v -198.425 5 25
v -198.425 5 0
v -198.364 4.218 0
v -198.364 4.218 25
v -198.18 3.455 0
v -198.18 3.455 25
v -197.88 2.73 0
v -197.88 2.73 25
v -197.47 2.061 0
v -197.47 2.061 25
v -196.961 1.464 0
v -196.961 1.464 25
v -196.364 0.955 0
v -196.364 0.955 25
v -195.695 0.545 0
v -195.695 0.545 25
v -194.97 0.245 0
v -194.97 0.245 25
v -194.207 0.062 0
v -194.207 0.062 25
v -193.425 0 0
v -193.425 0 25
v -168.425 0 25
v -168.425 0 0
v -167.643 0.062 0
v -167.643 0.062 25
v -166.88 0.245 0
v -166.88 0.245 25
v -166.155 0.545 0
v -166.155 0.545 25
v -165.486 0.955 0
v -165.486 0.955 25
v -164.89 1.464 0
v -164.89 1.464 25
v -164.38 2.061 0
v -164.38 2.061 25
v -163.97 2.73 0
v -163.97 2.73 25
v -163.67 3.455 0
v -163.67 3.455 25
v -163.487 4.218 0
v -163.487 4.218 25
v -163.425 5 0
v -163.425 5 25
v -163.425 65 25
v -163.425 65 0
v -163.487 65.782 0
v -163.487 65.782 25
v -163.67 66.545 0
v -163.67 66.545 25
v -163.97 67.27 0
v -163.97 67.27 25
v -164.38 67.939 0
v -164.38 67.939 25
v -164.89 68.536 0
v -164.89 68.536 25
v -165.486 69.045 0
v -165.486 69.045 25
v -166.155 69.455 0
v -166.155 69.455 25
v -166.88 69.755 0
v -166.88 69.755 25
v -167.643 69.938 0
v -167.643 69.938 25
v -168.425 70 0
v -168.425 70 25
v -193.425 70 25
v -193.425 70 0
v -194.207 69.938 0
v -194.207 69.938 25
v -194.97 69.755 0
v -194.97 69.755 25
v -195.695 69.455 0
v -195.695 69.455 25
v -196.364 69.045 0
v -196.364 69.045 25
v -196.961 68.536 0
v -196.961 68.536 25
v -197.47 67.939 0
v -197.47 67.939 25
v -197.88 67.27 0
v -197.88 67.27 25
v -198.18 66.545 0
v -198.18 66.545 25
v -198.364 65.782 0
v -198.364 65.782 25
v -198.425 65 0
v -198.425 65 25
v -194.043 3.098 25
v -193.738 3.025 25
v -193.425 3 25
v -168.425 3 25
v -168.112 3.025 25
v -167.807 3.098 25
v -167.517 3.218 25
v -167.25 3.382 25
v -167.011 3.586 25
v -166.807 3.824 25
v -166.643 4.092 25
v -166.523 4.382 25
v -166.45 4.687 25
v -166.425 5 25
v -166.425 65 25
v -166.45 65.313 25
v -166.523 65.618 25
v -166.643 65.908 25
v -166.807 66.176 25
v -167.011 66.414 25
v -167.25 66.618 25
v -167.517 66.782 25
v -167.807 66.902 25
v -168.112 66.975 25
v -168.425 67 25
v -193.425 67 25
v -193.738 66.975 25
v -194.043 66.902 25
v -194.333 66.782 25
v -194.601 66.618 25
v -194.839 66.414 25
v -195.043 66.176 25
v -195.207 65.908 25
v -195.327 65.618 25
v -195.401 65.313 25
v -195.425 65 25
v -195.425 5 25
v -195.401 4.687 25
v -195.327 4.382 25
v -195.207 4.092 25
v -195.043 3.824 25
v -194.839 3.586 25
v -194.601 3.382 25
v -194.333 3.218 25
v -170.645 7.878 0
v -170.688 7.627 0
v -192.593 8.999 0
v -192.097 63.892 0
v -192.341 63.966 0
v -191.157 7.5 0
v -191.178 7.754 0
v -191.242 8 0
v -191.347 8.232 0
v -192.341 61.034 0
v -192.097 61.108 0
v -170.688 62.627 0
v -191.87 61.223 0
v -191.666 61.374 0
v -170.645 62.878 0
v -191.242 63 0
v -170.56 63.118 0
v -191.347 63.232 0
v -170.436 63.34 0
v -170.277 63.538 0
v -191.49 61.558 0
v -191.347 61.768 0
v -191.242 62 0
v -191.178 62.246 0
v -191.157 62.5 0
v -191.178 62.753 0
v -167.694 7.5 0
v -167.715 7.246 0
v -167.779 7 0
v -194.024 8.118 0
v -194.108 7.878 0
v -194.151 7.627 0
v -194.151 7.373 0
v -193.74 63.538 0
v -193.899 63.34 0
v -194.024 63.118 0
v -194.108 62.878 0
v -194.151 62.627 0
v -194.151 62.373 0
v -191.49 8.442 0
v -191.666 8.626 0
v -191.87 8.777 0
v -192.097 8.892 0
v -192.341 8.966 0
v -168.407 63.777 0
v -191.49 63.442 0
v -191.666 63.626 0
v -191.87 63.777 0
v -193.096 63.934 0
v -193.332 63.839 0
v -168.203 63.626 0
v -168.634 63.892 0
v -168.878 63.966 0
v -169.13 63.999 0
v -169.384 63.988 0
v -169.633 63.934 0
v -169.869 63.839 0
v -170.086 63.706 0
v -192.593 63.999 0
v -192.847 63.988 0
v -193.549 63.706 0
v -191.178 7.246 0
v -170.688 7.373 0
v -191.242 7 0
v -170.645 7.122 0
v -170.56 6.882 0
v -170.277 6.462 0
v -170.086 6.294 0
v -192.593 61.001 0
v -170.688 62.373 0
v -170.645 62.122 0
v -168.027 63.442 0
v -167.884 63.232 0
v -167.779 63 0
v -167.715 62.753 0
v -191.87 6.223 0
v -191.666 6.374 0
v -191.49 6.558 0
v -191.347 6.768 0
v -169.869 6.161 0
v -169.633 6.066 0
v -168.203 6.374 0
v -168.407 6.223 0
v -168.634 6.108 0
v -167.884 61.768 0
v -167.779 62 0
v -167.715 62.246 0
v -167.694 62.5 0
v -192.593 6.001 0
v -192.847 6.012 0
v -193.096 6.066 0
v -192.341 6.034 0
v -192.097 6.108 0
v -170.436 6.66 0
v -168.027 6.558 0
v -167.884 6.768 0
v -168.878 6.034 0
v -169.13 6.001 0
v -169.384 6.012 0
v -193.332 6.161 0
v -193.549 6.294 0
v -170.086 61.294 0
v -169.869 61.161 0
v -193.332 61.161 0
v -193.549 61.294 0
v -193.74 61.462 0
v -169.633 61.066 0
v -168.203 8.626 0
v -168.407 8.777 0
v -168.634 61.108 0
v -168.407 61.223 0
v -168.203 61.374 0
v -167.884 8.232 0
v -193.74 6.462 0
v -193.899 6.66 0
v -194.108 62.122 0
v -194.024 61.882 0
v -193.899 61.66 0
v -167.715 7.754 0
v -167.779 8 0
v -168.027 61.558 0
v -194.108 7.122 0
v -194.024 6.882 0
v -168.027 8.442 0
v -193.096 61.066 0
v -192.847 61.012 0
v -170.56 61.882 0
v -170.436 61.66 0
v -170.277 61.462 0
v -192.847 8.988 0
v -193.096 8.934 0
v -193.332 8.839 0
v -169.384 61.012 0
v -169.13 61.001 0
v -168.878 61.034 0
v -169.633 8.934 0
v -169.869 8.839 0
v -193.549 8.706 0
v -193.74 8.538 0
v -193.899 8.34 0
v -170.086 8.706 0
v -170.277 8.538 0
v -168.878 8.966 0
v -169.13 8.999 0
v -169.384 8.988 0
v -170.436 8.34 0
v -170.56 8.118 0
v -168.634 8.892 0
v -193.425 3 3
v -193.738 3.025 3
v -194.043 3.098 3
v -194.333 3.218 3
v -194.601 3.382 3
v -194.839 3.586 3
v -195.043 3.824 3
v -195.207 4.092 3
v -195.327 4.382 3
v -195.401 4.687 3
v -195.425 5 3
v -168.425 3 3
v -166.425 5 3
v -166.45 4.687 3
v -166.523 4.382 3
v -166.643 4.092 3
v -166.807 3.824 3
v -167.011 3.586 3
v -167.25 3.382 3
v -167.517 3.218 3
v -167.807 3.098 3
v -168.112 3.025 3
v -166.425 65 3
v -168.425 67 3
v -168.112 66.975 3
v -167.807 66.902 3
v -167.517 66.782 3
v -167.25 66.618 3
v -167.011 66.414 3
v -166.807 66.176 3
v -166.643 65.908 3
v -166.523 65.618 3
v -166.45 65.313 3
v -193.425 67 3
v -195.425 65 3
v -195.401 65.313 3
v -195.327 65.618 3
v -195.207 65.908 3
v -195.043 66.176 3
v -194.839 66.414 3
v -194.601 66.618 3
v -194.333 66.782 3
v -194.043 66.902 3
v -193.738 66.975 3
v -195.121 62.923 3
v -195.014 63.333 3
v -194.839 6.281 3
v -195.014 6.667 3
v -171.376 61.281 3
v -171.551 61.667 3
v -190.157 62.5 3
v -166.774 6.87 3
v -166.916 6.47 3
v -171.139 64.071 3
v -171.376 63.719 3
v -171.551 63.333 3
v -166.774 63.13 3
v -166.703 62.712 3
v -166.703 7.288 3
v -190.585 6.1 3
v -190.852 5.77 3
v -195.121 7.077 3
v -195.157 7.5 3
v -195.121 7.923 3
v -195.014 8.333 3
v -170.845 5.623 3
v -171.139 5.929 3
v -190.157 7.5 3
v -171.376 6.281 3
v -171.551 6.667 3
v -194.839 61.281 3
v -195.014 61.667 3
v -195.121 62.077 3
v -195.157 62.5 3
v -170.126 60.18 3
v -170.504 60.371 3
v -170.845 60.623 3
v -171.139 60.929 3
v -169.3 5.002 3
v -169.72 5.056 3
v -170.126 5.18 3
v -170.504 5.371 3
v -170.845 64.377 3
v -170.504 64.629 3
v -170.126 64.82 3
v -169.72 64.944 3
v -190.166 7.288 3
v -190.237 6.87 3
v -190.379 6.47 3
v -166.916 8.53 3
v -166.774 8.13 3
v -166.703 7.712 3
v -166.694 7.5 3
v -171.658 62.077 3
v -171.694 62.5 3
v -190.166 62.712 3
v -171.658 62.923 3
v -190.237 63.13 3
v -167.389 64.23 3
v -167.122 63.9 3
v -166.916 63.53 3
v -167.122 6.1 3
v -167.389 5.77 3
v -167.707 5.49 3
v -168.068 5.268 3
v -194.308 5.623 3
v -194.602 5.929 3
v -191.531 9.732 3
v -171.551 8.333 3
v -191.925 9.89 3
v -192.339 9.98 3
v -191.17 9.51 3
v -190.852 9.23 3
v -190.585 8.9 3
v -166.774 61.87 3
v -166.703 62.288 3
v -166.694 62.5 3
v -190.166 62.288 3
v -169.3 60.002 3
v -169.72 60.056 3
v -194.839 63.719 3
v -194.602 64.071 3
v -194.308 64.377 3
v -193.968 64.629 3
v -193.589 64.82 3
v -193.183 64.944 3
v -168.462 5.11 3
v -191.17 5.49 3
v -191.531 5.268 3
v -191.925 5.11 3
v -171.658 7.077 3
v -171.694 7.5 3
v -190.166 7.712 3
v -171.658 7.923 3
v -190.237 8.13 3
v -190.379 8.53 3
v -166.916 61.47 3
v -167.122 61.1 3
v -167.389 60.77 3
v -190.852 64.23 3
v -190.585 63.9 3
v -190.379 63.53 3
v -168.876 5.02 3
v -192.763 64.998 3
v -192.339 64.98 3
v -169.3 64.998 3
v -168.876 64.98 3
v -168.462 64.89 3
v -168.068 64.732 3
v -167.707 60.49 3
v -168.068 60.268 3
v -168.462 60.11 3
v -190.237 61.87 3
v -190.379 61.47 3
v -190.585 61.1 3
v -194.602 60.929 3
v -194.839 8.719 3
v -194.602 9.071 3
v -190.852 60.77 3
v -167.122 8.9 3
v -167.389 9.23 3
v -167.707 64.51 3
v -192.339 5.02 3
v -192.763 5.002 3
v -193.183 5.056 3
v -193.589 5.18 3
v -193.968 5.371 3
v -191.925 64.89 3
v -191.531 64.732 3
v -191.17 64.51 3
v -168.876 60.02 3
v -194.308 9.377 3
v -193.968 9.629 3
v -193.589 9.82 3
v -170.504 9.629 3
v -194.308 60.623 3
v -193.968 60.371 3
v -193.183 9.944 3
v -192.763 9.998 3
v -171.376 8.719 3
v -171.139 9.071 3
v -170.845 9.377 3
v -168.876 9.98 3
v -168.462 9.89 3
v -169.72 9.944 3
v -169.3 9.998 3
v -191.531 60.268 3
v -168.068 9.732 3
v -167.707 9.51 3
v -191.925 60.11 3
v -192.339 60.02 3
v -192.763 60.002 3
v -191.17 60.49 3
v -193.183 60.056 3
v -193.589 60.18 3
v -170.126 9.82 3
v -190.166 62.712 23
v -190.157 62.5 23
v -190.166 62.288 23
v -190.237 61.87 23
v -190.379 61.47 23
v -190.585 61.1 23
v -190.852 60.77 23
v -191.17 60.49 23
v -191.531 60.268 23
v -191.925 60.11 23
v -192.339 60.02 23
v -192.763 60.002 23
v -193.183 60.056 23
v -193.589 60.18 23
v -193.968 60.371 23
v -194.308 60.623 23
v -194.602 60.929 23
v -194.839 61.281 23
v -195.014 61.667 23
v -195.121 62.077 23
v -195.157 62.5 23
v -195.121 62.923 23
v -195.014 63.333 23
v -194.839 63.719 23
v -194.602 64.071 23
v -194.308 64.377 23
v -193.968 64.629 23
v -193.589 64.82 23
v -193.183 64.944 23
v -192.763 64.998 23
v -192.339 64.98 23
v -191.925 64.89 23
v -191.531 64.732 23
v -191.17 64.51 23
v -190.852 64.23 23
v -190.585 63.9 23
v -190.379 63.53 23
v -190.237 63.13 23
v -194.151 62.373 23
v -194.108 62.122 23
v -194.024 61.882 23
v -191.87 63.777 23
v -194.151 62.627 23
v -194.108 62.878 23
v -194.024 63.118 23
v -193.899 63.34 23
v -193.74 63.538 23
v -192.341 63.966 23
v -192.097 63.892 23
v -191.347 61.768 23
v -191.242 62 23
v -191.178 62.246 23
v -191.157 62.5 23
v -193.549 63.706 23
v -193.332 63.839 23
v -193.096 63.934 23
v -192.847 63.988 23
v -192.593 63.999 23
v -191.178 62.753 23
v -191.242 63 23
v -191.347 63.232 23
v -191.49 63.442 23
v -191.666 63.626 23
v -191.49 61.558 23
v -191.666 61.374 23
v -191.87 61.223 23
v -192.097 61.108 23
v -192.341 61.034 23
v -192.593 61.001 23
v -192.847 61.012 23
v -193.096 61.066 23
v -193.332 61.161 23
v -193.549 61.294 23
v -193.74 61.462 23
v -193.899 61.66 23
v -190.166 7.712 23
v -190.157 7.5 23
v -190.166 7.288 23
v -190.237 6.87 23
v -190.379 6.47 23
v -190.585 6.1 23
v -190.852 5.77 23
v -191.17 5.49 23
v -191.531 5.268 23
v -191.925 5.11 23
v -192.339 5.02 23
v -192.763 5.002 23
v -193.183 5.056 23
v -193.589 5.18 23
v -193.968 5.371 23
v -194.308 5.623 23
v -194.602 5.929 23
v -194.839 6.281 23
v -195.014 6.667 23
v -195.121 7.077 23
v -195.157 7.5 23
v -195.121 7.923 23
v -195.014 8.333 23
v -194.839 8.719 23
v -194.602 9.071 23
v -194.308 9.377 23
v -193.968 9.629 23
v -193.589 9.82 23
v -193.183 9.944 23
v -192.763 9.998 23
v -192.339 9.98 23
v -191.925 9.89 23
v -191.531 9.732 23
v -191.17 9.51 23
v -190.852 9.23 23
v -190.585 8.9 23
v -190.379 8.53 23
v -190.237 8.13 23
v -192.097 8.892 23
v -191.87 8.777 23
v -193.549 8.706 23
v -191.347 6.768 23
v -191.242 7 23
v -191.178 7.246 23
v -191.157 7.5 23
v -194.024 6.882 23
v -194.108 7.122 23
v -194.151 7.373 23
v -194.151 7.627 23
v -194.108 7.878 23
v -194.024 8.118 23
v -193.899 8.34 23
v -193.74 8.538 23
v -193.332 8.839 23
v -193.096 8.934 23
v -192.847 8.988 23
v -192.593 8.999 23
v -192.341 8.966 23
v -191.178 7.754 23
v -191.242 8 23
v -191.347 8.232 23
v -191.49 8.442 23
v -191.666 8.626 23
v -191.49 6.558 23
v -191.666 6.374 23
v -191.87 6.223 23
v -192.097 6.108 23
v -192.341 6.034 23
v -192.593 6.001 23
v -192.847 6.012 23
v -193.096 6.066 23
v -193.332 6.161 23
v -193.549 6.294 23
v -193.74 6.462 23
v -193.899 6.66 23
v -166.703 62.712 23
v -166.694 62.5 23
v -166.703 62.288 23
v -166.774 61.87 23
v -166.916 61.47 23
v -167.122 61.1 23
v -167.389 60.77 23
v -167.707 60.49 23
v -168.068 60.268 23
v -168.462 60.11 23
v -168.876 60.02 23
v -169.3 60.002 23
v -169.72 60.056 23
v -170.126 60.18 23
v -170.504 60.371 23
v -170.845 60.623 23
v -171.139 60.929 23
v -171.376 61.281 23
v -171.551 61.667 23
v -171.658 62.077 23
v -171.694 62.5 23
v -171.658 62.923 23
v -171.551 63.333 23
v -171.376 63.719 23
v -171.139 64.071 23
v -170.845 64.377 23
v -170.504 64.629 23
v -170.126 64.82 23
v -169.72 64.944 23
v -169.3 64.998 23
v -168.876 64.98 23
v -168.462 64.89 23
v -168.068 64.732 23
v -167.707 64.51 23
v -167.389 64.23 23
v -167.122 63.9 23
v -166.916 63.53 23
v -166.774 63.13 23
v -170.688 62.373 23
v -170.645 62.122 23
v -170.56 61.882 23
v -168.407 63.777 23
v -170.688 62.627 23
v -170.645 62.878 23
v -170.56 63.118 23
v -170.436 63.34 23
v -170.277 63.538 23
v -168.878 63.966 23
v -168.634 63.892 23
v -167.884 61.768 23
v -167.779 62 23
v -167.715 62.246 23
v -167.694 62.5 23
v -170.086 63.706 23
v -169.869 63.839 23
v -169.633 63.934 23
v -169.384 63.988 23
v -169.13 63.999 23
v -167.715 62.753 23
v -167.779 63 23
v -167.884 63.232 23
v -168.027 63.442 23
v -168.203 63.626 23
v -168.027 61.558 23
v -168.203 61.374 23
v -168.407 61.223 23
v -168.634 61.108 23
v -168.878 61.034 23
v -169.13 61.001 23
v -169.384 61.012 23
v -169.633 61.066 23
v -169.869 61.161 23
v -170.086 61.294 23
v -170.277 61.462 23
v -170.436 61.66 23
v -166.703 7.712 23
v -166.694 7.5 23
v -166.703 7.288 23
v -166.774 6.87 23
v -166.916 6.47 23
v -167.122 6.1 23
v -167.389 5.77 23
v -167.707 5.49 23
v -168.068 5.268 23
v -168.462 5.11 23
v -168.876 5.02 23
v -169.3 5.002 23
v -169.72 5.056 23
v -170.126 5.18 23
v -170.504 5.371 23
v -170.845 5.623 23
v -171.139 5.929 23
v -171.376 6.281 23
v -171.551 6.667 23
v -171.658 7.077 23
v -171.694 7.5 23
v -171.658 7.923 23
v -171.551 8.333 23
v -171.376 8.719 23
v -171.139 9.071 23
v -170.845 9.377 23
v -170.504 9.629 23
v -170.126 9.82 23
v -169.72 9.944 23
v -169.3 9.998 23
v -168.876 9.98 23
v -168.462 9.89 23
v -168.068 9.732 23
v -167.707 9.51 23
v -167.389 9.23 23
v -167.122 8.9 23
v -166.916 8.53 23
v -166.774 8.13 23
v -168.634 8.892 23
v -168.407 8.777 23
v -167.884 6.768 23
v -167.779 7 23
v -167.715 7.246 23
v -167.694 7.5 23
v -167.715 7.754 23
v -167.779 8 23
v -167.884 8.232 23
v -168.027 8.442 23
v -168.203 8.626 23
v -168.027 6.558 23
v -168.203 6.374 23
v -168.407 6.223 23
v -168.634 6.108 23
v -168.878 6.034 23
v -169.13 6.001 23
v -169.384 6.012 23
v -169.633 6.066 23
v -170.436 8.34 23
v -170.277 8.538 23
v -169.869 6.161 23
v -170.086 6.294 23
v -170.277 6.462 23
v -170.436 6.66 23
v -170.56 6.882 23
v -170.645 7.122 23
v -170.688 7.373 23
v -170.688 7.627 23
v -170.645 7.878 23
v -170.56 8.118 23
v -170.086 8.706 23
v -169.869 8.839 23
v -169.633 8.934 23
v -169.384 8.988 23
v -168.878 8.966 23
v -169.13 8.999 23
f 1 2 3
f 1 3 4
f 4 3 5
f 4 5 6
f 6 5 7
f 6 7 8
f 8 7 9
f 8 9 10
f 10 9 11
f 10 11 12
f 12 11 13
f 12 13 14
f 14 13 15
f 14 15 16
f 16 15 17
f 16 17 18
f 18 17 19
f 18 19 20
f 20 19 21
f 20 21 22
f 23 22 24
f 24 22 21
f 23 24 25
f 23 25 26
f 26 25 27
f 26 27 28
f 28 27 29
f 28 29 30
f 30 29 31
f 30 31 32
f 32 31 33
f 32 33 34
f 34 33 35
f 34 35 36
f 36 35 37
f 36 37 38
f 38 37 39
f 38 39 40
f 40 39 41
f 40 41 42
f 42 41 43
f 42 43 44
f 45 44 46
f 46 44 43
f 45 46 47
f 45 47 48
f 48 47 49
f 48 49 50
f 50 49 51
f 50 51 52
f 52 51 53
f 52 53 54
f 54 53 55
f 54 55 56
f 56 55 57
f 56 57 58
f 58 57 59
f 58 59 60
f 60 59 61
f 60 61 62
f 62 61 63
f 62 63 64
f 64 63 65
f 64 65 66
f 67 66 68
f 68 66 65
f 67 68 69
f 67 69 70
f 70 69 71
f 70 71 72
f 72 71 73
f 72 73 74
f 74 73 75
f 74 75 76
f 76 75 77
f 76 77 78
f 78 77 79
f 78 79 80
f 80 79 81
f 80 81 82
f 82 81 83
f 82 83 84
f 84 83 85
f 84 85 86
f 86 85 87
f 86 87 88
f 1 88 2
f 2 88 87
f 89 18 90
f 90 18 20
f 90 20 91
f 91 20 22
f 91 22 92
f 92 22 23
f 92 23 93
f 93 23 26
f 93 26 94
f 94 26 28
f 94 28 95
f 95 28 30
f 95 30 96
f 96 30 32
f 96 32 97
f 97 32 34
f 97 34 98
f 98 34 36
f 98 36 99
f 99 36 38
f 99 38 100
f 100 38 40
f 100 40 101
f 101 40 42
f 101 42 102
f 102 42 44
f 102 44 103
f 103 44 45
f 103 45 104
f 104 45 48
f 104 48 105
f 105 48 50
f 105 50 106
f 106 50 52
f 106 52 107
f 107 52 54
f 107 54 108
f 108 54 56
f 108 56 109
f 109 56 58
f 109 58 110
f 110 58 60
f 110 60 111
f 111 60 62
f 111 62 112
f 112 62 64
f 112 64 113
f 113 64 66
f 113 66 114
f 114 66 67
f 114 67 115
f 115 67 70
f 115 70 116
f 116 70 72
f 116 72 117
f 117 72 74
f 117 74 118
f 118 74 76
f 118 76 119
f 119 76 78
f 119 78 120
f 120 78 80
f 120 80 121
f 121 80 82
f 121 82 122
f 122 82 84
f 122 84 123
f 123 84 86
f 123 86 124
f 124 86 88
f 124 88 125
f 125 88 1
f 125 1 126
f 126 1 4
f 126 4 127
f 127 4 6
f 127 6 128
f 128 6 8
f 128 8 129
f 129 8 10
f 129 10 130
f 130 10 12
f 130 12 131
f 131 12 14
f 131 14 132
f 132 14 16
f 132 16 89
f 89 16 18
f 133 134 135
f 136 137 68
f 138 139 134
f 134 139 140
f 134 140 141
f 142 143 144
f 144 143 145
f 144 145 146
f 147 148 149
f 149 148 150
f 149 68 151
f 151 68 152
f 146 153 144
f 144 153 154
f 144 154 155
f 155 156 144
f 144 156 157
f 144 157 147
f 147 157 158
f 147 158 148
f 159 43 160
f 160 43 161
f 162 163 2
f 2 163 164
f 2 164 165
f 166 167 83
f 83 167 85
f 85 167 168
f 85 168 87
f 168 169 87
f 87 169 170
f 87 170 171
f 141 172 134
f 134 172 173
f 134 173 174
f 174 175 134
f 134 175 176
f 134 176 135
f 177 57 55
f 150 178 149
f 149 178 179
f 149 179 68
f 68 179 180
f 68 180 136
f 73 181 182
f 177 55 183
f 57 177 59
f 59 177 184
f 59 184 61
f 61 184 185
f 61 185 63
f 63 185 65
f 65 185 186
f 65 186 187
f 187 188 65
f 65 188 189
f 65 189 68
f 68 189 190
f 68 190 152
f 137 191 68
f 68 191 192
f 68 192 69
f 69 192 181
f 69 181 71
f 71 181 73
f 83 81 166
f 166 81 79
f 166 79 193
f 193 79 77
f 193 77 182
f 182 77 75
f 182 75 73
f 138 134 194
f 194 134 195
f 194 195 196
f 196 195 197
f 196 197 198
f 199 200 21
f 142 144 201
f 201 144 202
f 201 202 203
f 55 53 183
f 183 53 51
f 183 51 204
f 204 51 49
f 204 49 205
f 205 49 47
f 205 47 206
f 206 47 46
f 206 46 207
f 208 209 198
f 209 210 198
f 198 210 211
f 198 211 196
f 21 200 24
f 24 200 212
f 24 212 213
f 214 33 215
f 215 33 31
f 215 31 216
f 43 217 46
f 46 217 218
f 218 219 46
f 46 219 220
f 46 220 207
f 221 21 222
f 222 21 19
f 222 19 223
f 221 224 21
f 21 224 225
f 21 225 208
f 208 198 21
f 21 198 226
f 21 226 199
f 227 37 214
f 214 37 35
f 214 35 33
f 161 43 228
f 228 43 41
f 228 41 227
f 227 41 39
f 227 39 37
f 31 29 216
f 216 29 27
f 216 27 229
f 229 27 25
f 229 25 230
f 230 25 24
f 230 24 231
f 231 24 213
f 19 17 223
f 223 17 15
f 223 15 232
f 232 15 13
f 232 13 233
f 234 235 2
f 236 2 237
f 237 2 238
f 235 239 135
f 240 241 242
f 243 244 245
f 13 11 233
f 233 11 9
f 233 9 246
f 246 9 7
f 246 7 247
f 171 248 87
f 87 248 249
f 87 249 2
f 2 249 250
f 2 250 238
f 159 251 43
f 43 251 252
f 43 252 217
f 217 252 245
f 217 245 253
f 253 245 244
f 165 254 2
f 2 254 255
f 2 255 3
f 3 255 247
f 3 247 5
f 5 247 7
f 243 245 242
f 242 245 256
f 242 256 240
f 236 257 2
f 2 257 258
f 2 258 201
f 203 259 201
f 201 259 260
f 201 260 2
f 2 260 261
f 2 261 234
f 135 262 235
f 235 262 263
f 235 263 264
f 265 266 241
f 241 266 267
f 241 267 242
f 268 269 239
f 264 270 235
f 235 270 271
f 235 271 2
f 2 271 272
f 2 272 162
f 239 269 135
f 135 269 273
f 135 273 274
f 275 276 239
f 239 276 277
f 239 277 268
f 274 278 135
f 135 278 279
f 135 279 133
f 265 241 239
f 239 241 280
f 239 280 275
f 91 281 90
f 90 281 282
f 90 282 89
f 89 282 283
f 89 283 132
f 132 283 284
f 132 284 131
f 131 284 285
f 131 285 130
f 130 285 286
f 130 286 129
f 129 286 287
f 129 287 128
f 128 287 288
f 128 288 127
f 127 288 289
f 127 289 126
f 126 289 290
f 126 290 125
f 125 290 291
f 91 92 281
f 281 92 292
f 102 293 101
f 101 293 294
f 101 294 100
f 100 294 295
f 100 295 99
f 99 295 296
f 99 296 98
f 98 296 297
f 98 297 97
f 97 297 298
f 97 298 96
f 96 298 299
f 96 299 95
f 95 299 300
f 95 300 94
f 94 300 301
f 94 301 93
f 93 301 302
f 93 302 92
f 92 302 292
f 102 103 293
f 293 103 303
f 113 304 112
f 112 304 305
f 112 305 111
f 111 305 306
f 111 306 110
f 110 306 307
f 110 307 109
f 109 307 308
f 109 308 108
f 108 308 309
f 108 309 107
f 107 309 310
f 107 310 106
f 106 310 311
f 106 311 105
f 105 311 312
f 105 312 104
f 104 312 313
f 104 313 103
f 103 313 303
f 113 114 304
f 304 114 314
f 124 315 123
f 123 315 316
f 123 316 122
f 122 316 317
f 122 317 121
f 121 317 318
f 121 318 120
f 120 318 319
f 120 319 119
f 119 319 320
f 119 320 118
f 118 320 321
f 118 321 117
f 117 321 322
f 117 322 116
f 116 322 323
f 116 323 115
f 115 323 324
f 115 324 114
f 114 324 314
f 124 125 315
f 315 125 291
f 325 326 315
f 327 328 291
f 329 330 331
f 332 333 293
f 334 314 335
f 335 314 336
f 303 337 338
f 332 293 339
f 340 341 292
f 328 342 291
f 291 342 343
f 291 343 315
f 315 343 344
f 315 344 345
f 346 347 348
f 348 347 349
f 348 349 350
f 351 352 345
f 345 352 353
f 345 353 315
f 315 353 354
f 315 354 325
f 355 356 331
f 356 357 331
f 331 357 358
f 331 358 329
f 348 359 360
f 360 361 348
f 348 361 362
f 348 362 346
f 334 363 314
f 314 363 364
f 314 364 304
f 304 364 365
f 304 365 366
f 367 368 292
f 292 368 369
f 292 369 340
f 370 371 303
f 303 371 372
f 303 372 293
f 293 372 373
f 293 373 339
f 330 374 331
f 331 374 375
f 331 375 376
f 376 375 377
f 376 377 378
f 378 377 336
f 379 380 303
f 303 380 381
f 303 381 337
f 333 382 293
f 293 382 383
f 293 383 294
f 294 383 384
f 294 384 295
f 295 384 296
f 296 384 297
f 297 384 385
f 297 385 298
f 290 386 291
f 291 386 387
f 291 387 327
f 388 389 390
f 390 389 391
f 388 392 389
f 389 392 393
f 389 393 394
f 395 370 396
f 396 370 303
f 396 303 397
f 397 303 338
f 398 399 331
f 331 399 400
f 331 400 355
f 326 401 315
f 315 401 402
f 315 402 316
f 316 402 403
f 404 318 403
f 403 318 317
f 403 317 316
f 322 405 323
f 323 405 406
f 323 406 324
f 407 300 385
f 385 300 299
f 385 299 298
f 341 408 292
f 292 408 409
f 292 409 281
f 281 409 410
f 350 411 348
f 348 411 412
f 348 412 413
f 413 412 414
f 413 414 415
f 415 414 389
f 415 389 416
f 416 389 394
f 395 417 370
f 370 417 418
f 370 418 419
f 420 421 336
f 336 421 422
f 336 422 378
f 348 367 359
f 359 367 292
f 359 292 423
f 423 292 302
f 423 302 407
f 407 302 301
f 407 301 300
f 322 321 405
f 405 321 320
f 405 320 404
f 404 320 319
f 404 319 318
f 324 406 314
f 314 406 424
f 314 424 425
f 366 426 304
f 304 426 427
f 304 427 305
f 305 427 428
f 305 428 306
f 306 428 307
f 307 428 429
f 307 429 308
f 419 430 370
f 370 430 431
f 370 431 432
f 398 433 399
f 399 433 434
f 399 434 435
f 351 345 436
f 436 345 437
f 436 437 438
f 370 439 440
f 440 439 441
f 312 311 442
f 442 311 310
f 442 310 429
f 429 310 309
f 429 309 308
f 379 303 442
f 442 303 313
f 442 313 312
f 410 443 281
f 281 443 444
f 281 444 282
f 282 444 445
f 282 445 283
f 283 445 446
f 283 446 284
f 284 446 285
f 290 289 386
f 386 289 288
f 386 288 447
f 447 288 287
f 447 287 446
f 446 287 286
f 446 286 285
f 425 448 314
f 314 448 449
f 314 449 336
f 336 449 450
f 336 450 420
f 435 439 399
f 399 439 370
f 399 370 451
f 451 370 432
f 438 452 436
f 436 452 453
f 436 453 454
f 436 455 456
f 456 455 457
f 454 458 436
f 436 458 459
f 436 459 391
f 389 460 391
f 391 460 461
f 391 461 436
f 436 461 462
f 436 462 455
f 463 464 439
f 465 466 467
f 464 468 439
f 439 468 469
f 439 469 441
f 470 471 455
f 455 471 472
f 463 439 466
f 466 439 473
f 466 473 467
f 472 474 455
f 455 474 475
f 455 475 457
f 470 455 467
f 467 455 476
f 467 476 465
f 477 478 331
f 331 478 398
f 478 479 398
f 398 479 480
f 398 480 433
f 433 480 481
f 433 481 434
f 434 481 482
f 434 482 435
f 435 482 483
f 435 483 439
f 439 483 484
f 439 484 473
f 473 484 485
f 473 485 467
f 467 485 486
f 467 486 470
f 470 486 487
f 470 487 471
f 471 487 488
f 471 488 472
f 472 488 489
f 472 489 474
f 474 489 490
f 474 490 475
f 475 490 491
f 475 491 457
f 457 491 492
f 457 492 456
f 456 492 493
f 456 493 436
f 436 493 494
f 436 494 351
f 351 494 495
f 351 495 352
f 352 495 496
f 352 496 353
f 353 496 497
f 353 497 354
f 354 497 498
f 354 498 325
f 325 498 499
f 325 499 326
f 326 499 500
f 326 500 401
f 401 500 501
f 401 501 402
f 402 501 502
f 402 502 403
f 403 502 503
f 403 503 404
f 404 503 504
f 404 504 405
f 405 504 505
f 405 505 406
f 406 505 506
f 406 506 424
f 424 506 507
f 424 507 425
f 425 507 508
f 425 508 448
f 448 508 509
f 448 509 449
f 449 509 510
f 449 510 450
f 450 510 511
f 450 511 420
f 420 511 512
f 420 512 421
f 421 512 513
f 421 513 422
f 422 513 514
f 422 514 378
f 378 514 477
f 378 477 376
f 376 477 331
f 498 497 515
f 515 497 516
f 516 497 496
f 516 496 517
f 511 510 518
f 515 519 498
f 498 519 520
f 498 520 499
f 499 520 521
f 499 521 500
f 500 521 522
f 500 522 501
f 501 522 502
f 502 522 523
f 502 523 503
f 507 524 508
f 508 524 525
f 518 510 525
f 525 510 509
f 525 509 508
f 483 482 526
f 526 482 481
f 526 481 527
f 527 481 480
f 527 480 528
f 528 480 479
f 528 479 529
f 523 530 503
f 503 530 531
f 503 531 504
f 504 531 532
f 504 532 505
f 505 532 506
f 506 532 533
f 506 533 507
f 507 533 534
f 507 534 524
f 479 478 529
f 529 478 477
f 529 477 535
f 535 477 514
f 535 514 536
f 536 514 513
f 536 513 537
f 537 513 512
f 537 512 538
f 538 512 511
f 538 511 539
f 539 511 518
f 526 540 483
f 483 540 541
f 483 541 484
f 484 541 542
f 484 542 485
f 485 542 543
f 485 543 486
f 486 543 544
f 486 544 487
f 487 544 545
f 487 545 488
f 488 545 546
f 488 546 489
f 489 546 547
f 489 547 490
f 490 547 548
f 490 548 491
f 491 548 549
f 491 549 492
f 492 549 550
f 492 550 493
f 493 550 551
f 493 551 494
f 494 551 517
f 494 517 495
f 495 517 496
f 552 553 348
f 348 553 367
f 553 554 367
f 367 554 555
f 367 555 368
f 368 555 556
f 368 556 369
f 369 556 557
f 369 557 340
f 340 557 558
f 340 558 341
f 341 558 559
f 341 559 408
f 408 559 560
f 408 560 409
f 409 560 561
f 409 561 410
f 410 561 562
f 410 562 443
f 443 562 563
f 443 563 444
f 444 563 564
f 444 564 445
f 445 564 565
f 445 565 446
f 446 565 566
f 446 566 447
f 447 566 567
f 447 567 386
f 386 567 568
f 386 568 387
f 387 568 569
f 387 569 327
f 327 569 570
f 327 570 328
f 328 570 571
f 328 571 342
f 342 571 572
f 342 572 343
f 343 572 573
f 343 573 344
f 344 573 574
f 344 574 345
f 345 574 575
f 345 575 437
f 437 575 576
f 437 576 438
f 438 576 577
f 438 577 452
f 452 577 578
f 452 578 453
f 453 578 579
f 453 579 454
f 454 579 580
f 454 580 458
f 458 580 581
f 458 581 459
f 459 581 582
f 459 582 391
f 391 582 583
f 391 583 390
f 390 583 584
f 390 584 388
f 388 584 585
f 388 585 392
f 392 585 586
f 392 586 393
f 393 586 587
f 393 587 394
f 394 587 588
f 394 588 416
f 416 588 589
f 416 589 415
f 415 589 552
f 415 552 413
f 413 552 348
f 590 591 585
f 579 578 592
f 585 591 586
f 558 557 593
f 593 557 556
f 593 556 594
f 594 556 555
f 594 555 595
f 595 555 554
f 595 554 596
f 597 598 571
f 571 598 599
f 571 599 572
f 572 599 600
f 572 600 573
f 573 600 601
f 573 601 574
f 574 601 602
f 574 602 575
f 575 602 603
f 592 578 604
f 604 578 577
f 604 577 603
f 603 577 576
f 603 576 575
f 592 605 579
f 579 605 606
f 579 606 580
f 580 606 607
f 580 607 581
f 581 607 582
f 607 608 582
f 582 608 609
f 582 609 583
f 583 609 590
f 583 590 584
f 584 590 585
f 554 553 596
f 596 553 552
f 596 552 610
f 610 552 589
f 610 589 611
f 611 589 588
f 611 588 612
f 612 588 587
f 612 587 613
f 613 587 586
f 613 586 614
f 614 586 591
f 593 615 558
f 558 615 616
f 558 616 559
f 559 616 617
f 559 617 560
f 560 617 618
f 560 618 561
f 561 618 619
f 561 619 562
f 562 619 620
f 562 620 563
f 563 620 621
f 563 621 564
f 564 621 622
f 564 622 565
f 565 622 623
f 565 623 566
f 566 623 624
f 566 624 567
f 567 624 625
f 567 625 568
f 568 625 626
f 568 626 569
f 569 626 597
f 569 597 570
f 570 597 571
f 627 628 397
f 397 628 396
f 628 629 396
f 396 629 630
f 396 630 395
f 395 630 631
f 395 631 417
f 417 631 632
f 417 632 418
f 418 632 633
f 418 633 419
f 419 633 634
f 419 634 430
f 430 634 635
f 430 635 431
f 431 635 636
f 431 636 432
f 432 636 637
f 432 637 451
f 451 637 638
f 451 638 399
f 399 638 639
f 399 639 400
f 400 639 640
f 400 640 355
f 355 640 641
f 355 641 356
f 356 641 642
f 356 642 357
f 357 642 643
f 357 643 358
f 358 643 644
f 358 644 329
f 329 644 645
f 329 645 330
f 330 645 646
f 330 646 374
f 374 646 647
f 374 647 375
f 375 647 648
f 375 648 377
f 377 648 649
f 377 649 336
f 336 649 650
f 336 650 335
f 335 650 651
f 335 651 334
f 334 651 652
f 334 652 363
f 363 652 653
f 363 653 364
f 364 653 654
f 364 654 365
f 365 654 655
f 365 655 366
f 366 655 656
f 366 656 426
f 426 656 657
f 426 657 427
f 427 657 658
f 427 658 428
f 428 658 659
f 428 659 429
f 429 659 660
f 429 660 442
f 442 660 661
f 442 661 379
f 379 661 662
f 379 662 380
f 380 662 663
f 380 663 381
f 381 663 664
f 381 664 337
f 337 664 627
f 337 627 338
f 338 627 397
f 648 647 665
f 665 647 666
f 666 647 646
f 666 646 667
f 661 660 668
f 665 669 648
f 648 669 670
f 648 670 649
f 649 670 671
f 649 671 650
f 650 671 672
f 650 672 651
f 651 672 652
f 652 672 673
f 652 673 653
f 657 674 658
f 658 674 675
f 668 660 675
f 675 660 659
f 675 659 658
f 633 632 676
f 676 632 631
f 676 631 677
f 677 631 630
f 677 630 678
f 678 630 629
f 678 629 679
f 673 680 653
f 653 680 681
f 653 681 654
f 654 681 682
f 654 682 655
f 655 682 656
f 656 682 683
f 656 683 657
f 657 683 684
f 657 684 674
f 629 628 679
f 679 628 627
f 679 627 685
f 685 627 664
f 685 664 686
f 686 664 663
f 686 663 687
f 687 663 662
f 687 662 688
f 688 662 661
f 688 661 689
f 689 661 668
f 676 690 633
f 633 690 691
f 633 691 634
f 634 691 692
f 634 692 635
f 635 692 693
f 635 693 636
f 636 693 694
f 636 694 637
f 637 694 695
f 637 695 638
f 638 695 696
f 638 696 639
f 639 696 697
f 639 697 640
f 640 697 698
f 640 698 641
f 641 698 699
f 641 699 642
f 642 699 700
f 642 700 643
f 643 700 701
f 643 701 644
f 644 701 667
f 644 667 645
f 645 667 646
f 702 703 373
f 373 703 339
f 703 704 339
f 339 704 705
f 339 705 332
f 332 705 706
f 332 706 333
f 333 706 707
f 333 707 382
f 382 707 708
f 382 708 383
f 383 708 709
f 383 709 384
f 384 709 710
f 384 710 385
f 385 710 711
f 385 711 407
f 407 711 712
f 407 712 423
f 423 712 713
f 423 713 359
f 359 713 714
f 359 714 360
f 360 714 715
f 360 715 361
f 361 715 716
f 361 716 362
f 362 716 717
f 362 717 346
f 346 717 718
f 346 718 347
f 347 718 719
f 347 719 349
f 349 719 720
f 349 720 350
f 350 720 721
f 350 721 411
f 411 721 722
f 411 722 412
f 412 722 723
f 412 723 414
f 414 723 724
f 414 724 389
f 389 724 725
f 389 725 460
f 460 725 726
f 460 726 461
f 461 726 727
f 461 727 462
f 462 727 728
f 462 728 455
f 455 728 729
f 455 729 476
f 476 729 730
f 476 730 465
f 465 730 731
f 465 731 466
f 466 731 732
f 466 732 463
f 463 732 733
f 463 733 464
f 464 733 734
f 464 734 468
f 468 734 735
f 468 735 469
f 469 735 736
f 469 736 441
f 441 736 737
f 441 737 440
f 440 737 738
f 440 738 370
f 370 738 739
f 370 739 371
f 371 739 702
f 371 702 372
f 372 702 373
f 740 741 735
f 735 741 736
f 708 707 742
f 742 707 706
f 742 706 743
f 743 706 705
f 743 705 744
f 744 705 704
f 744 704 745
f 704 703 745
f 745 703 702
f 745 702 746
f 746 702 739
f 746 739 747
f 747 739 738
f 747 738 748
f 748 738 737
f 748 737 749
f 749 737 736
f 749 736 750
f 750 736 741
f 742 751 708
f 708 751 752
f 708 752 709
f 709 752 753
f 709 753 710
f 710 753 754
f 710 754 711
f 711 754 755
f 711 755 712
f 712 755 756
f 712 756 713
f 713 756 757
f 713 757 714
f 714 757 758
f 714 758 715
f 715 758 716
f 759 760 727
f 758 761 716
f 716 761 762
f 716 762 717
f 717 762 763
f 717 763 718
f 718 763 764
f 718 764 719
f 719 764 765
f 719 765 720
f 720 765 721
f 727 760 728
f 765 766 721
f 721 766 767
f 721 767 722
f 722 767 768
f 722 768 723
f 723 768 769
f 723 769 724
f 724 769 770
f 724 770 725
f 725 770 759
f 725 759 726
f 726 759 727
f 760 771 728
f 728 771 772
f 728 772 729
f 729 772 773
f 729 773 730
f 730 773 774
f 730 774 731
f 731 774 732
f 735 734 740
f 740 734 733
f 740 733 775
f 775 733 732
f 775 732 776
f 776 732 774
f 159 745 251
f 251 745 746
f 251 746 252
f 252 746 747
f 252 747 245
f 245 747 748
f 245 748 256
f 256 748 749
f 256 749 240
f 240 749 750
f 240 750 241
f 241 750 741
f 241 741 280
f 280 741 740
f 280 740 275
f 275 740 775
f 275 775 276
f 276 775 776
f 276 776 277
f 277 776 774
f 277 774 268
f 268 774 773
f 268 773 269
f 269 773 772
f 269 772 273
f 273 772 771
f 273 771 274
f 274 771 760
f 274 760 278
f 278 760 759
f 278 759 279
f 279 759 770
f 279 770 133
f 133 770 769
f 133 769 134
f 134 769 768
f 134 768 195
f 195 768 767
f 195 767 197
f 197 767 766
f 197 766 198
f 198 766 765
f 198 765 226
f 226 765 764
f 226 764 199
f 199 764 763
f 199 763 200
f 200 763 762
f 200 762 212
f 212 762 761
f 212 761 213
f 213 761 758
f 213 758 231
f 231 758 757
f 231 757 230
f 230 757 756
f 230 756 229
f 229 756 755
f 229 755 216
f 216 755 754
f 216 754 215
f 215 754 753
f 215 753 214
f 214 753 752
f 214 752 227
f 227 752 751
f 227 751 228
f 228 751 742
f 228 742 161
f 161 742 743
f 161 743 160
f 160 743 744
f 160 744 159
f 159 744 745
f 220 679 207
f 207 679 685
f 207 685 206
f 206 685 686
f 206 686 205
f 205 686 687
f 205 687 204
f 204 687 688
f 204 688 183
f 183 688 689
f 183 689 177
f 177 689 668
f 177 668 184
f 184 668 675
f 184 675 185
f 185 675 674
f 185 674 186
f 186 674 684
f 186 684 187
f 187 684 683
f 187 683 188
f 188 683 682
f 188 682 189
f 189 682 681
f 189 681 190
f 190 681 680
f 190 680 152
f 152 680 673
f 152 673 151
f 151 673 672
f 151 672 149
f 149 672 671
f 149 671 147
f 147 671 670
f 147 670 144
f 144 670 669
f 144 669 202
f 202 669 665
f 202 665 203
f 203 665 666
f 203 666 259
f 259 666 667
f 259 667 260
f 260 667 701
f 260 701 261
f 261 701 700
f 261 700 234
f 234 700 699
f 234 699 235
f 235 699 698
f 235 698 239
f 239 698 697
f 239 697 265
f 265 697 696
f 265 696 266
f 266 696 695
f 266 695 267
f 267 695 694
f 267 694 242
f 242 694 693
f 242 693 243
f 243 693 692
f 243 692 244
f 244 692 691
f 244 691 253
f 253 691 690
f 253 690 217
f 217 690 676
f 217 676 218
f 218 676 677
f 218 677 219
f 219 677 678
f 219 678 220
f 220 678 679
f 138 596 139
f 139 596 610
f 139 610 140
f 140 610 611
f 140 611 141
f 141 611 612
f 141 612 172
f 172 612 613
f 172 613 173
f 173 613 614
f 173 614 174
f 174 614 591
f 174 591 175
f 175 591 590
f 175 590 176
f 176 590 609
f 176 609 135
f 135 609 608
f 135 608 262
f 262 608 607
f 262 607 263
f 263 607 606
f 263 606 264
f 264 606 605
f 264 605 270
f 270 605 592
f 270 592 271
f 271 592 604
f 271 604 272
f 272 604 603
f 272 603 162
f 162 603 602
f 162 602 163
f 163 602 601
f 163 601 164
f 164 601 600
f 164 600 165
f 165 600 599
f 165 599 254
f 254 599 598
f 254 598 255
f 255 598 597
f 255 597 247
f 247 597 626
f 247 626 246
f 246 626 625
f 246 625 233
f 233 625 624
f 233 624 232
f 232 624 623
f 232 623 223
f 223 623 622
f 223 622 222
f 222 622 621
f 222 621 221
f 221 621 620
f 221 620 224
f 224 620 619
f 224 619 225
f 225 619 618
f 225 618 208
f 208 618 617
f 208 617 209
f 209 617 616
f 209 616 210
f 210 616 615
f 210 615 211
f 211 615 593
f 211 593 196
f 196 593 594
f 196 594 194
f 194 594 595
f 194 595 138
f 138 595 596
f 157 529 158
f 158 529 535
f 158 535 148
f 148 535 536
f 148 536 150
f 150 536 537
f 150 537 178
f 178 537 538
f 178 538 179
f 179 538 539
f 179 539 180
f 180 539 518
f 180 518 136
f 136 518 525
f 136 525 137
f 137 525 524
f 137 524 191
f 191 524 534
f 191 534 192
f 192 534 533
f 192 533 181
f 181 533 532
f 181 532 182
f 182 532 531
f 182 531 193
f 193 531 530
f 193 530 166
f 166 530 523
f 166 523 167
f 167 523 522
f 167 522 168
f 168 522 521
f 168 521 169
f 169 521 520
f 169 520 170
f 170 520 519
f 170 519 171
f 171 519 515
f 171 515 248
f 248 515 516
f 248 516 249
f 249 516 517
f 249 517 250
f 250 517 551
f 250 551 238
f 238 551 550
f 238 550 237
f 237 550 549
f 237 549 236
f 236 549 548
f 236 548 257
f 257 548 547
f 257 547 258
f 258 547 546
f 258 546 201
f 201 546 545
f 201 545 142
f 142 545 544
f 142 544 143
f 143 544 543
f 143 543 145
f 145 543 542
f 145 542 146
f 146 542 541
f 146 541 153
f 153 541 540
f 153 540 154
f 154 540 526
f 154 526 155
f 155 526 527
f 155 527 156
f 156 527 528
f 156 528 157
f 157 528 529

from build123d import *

# Parameters (mm, degrees)
EXTRUDE_1_DEPTH          = 25
SHELL_2_T                = -3
SKETCH_3_R               = 2.5
EXTRUDE_4_DEPTH          = 20
CUT_EXTRUDE_4_DEPTH      = 212.557459677
CUT_EXTRUDE_4_DEPTH_BACK = 212.557459677
SKETCH_4_R               = 1.5


with BuildPart() as part:
    # 草图1 → 凸台-拉伸1 (new body)
    with BuildSketch(Plane.XY):
        with BuildLine():
            Line((-193.42519685, 70), (-168.42519685, 70))
            ThreePointArc((-168.42519685, 70), (-164.889662944, 68.535533906), (-163.42519685, 65))
            Line((-163.42519685, 65), (-163.42519685, 5))
            ThreePointArc((-163.42519685, 5), (-164.889662944, 1.464466094), (-168.42519685, 0))
            Line((-168.42519685, 0), (-193.42519685, 0))
            ThreePointArc((-193.42519685, 0), (-196.960730756, 1.464466094), (-198.42519685, 5))
            Line((-198.42519685, 5), (-198.42519685, 65))
            ThreePointArc((-198.42519685, 65), (-196.960730756, 68.535533906), (-193.42519685, 70))
        make_face()
    extrude(amount=EXTRUDE_1_DEPTH)

    # 抽壳2
    shell_2_openings = [part.faces().sort_by_distance(p)[0] for p in [
        (-180.92519685, 35, 25),
    ]]
    offset(amount=SHELL_2_T, openings=shell_2_openings, kind=Kind.INTERSECTION)

    # 草图3 → 凸台-拉伸4 (add)
    with BuildSketch(Plane.XY.offset(3)):
        with Locations((-192.656739456, 62.5)):
            Circle(SKETCH_3_R)
        with Locations((-192.656739456, 7.5)):
            Circle(SKETCH_3_R)
        with Locations((-169.193654245, 62.5)):
            Circle(SKETCH_3_R)
        with Locations((-169.193654245, 7.5)):
            Circle(SKETCH_3_R)
    extrude(amount=EXTRUDE_4_DEPTH)

    # 草图4 → 切除-拉伸4 (cut, two sides: drawn at the far end of the back side and taken through both)
    with BuildSketch(Plane.XY.offset(3).offset(-CUT_EXTRUDE_4_DEPTH_BACK)):
        with Locations((-192.656739456, 62.5)):
            Circle(SKETCH_4_R)
        with Locations((-169.193654245, 62.5)):
            Circle(SKETCH_4_R)
        with Locations((-169.193654245, 7.5)):
            Circle(SKETCH_4_R)
        with Locations((-192.656739456, 7.5)):
            Circle(SKETCH_4_R)
    extrude(amount=CUT_EXTRUDE_4_DEPTH + CUT_EXTRUDE_4_DEPTH_BACK, mode=Mode.SUBTRACT)


solid = part.part
